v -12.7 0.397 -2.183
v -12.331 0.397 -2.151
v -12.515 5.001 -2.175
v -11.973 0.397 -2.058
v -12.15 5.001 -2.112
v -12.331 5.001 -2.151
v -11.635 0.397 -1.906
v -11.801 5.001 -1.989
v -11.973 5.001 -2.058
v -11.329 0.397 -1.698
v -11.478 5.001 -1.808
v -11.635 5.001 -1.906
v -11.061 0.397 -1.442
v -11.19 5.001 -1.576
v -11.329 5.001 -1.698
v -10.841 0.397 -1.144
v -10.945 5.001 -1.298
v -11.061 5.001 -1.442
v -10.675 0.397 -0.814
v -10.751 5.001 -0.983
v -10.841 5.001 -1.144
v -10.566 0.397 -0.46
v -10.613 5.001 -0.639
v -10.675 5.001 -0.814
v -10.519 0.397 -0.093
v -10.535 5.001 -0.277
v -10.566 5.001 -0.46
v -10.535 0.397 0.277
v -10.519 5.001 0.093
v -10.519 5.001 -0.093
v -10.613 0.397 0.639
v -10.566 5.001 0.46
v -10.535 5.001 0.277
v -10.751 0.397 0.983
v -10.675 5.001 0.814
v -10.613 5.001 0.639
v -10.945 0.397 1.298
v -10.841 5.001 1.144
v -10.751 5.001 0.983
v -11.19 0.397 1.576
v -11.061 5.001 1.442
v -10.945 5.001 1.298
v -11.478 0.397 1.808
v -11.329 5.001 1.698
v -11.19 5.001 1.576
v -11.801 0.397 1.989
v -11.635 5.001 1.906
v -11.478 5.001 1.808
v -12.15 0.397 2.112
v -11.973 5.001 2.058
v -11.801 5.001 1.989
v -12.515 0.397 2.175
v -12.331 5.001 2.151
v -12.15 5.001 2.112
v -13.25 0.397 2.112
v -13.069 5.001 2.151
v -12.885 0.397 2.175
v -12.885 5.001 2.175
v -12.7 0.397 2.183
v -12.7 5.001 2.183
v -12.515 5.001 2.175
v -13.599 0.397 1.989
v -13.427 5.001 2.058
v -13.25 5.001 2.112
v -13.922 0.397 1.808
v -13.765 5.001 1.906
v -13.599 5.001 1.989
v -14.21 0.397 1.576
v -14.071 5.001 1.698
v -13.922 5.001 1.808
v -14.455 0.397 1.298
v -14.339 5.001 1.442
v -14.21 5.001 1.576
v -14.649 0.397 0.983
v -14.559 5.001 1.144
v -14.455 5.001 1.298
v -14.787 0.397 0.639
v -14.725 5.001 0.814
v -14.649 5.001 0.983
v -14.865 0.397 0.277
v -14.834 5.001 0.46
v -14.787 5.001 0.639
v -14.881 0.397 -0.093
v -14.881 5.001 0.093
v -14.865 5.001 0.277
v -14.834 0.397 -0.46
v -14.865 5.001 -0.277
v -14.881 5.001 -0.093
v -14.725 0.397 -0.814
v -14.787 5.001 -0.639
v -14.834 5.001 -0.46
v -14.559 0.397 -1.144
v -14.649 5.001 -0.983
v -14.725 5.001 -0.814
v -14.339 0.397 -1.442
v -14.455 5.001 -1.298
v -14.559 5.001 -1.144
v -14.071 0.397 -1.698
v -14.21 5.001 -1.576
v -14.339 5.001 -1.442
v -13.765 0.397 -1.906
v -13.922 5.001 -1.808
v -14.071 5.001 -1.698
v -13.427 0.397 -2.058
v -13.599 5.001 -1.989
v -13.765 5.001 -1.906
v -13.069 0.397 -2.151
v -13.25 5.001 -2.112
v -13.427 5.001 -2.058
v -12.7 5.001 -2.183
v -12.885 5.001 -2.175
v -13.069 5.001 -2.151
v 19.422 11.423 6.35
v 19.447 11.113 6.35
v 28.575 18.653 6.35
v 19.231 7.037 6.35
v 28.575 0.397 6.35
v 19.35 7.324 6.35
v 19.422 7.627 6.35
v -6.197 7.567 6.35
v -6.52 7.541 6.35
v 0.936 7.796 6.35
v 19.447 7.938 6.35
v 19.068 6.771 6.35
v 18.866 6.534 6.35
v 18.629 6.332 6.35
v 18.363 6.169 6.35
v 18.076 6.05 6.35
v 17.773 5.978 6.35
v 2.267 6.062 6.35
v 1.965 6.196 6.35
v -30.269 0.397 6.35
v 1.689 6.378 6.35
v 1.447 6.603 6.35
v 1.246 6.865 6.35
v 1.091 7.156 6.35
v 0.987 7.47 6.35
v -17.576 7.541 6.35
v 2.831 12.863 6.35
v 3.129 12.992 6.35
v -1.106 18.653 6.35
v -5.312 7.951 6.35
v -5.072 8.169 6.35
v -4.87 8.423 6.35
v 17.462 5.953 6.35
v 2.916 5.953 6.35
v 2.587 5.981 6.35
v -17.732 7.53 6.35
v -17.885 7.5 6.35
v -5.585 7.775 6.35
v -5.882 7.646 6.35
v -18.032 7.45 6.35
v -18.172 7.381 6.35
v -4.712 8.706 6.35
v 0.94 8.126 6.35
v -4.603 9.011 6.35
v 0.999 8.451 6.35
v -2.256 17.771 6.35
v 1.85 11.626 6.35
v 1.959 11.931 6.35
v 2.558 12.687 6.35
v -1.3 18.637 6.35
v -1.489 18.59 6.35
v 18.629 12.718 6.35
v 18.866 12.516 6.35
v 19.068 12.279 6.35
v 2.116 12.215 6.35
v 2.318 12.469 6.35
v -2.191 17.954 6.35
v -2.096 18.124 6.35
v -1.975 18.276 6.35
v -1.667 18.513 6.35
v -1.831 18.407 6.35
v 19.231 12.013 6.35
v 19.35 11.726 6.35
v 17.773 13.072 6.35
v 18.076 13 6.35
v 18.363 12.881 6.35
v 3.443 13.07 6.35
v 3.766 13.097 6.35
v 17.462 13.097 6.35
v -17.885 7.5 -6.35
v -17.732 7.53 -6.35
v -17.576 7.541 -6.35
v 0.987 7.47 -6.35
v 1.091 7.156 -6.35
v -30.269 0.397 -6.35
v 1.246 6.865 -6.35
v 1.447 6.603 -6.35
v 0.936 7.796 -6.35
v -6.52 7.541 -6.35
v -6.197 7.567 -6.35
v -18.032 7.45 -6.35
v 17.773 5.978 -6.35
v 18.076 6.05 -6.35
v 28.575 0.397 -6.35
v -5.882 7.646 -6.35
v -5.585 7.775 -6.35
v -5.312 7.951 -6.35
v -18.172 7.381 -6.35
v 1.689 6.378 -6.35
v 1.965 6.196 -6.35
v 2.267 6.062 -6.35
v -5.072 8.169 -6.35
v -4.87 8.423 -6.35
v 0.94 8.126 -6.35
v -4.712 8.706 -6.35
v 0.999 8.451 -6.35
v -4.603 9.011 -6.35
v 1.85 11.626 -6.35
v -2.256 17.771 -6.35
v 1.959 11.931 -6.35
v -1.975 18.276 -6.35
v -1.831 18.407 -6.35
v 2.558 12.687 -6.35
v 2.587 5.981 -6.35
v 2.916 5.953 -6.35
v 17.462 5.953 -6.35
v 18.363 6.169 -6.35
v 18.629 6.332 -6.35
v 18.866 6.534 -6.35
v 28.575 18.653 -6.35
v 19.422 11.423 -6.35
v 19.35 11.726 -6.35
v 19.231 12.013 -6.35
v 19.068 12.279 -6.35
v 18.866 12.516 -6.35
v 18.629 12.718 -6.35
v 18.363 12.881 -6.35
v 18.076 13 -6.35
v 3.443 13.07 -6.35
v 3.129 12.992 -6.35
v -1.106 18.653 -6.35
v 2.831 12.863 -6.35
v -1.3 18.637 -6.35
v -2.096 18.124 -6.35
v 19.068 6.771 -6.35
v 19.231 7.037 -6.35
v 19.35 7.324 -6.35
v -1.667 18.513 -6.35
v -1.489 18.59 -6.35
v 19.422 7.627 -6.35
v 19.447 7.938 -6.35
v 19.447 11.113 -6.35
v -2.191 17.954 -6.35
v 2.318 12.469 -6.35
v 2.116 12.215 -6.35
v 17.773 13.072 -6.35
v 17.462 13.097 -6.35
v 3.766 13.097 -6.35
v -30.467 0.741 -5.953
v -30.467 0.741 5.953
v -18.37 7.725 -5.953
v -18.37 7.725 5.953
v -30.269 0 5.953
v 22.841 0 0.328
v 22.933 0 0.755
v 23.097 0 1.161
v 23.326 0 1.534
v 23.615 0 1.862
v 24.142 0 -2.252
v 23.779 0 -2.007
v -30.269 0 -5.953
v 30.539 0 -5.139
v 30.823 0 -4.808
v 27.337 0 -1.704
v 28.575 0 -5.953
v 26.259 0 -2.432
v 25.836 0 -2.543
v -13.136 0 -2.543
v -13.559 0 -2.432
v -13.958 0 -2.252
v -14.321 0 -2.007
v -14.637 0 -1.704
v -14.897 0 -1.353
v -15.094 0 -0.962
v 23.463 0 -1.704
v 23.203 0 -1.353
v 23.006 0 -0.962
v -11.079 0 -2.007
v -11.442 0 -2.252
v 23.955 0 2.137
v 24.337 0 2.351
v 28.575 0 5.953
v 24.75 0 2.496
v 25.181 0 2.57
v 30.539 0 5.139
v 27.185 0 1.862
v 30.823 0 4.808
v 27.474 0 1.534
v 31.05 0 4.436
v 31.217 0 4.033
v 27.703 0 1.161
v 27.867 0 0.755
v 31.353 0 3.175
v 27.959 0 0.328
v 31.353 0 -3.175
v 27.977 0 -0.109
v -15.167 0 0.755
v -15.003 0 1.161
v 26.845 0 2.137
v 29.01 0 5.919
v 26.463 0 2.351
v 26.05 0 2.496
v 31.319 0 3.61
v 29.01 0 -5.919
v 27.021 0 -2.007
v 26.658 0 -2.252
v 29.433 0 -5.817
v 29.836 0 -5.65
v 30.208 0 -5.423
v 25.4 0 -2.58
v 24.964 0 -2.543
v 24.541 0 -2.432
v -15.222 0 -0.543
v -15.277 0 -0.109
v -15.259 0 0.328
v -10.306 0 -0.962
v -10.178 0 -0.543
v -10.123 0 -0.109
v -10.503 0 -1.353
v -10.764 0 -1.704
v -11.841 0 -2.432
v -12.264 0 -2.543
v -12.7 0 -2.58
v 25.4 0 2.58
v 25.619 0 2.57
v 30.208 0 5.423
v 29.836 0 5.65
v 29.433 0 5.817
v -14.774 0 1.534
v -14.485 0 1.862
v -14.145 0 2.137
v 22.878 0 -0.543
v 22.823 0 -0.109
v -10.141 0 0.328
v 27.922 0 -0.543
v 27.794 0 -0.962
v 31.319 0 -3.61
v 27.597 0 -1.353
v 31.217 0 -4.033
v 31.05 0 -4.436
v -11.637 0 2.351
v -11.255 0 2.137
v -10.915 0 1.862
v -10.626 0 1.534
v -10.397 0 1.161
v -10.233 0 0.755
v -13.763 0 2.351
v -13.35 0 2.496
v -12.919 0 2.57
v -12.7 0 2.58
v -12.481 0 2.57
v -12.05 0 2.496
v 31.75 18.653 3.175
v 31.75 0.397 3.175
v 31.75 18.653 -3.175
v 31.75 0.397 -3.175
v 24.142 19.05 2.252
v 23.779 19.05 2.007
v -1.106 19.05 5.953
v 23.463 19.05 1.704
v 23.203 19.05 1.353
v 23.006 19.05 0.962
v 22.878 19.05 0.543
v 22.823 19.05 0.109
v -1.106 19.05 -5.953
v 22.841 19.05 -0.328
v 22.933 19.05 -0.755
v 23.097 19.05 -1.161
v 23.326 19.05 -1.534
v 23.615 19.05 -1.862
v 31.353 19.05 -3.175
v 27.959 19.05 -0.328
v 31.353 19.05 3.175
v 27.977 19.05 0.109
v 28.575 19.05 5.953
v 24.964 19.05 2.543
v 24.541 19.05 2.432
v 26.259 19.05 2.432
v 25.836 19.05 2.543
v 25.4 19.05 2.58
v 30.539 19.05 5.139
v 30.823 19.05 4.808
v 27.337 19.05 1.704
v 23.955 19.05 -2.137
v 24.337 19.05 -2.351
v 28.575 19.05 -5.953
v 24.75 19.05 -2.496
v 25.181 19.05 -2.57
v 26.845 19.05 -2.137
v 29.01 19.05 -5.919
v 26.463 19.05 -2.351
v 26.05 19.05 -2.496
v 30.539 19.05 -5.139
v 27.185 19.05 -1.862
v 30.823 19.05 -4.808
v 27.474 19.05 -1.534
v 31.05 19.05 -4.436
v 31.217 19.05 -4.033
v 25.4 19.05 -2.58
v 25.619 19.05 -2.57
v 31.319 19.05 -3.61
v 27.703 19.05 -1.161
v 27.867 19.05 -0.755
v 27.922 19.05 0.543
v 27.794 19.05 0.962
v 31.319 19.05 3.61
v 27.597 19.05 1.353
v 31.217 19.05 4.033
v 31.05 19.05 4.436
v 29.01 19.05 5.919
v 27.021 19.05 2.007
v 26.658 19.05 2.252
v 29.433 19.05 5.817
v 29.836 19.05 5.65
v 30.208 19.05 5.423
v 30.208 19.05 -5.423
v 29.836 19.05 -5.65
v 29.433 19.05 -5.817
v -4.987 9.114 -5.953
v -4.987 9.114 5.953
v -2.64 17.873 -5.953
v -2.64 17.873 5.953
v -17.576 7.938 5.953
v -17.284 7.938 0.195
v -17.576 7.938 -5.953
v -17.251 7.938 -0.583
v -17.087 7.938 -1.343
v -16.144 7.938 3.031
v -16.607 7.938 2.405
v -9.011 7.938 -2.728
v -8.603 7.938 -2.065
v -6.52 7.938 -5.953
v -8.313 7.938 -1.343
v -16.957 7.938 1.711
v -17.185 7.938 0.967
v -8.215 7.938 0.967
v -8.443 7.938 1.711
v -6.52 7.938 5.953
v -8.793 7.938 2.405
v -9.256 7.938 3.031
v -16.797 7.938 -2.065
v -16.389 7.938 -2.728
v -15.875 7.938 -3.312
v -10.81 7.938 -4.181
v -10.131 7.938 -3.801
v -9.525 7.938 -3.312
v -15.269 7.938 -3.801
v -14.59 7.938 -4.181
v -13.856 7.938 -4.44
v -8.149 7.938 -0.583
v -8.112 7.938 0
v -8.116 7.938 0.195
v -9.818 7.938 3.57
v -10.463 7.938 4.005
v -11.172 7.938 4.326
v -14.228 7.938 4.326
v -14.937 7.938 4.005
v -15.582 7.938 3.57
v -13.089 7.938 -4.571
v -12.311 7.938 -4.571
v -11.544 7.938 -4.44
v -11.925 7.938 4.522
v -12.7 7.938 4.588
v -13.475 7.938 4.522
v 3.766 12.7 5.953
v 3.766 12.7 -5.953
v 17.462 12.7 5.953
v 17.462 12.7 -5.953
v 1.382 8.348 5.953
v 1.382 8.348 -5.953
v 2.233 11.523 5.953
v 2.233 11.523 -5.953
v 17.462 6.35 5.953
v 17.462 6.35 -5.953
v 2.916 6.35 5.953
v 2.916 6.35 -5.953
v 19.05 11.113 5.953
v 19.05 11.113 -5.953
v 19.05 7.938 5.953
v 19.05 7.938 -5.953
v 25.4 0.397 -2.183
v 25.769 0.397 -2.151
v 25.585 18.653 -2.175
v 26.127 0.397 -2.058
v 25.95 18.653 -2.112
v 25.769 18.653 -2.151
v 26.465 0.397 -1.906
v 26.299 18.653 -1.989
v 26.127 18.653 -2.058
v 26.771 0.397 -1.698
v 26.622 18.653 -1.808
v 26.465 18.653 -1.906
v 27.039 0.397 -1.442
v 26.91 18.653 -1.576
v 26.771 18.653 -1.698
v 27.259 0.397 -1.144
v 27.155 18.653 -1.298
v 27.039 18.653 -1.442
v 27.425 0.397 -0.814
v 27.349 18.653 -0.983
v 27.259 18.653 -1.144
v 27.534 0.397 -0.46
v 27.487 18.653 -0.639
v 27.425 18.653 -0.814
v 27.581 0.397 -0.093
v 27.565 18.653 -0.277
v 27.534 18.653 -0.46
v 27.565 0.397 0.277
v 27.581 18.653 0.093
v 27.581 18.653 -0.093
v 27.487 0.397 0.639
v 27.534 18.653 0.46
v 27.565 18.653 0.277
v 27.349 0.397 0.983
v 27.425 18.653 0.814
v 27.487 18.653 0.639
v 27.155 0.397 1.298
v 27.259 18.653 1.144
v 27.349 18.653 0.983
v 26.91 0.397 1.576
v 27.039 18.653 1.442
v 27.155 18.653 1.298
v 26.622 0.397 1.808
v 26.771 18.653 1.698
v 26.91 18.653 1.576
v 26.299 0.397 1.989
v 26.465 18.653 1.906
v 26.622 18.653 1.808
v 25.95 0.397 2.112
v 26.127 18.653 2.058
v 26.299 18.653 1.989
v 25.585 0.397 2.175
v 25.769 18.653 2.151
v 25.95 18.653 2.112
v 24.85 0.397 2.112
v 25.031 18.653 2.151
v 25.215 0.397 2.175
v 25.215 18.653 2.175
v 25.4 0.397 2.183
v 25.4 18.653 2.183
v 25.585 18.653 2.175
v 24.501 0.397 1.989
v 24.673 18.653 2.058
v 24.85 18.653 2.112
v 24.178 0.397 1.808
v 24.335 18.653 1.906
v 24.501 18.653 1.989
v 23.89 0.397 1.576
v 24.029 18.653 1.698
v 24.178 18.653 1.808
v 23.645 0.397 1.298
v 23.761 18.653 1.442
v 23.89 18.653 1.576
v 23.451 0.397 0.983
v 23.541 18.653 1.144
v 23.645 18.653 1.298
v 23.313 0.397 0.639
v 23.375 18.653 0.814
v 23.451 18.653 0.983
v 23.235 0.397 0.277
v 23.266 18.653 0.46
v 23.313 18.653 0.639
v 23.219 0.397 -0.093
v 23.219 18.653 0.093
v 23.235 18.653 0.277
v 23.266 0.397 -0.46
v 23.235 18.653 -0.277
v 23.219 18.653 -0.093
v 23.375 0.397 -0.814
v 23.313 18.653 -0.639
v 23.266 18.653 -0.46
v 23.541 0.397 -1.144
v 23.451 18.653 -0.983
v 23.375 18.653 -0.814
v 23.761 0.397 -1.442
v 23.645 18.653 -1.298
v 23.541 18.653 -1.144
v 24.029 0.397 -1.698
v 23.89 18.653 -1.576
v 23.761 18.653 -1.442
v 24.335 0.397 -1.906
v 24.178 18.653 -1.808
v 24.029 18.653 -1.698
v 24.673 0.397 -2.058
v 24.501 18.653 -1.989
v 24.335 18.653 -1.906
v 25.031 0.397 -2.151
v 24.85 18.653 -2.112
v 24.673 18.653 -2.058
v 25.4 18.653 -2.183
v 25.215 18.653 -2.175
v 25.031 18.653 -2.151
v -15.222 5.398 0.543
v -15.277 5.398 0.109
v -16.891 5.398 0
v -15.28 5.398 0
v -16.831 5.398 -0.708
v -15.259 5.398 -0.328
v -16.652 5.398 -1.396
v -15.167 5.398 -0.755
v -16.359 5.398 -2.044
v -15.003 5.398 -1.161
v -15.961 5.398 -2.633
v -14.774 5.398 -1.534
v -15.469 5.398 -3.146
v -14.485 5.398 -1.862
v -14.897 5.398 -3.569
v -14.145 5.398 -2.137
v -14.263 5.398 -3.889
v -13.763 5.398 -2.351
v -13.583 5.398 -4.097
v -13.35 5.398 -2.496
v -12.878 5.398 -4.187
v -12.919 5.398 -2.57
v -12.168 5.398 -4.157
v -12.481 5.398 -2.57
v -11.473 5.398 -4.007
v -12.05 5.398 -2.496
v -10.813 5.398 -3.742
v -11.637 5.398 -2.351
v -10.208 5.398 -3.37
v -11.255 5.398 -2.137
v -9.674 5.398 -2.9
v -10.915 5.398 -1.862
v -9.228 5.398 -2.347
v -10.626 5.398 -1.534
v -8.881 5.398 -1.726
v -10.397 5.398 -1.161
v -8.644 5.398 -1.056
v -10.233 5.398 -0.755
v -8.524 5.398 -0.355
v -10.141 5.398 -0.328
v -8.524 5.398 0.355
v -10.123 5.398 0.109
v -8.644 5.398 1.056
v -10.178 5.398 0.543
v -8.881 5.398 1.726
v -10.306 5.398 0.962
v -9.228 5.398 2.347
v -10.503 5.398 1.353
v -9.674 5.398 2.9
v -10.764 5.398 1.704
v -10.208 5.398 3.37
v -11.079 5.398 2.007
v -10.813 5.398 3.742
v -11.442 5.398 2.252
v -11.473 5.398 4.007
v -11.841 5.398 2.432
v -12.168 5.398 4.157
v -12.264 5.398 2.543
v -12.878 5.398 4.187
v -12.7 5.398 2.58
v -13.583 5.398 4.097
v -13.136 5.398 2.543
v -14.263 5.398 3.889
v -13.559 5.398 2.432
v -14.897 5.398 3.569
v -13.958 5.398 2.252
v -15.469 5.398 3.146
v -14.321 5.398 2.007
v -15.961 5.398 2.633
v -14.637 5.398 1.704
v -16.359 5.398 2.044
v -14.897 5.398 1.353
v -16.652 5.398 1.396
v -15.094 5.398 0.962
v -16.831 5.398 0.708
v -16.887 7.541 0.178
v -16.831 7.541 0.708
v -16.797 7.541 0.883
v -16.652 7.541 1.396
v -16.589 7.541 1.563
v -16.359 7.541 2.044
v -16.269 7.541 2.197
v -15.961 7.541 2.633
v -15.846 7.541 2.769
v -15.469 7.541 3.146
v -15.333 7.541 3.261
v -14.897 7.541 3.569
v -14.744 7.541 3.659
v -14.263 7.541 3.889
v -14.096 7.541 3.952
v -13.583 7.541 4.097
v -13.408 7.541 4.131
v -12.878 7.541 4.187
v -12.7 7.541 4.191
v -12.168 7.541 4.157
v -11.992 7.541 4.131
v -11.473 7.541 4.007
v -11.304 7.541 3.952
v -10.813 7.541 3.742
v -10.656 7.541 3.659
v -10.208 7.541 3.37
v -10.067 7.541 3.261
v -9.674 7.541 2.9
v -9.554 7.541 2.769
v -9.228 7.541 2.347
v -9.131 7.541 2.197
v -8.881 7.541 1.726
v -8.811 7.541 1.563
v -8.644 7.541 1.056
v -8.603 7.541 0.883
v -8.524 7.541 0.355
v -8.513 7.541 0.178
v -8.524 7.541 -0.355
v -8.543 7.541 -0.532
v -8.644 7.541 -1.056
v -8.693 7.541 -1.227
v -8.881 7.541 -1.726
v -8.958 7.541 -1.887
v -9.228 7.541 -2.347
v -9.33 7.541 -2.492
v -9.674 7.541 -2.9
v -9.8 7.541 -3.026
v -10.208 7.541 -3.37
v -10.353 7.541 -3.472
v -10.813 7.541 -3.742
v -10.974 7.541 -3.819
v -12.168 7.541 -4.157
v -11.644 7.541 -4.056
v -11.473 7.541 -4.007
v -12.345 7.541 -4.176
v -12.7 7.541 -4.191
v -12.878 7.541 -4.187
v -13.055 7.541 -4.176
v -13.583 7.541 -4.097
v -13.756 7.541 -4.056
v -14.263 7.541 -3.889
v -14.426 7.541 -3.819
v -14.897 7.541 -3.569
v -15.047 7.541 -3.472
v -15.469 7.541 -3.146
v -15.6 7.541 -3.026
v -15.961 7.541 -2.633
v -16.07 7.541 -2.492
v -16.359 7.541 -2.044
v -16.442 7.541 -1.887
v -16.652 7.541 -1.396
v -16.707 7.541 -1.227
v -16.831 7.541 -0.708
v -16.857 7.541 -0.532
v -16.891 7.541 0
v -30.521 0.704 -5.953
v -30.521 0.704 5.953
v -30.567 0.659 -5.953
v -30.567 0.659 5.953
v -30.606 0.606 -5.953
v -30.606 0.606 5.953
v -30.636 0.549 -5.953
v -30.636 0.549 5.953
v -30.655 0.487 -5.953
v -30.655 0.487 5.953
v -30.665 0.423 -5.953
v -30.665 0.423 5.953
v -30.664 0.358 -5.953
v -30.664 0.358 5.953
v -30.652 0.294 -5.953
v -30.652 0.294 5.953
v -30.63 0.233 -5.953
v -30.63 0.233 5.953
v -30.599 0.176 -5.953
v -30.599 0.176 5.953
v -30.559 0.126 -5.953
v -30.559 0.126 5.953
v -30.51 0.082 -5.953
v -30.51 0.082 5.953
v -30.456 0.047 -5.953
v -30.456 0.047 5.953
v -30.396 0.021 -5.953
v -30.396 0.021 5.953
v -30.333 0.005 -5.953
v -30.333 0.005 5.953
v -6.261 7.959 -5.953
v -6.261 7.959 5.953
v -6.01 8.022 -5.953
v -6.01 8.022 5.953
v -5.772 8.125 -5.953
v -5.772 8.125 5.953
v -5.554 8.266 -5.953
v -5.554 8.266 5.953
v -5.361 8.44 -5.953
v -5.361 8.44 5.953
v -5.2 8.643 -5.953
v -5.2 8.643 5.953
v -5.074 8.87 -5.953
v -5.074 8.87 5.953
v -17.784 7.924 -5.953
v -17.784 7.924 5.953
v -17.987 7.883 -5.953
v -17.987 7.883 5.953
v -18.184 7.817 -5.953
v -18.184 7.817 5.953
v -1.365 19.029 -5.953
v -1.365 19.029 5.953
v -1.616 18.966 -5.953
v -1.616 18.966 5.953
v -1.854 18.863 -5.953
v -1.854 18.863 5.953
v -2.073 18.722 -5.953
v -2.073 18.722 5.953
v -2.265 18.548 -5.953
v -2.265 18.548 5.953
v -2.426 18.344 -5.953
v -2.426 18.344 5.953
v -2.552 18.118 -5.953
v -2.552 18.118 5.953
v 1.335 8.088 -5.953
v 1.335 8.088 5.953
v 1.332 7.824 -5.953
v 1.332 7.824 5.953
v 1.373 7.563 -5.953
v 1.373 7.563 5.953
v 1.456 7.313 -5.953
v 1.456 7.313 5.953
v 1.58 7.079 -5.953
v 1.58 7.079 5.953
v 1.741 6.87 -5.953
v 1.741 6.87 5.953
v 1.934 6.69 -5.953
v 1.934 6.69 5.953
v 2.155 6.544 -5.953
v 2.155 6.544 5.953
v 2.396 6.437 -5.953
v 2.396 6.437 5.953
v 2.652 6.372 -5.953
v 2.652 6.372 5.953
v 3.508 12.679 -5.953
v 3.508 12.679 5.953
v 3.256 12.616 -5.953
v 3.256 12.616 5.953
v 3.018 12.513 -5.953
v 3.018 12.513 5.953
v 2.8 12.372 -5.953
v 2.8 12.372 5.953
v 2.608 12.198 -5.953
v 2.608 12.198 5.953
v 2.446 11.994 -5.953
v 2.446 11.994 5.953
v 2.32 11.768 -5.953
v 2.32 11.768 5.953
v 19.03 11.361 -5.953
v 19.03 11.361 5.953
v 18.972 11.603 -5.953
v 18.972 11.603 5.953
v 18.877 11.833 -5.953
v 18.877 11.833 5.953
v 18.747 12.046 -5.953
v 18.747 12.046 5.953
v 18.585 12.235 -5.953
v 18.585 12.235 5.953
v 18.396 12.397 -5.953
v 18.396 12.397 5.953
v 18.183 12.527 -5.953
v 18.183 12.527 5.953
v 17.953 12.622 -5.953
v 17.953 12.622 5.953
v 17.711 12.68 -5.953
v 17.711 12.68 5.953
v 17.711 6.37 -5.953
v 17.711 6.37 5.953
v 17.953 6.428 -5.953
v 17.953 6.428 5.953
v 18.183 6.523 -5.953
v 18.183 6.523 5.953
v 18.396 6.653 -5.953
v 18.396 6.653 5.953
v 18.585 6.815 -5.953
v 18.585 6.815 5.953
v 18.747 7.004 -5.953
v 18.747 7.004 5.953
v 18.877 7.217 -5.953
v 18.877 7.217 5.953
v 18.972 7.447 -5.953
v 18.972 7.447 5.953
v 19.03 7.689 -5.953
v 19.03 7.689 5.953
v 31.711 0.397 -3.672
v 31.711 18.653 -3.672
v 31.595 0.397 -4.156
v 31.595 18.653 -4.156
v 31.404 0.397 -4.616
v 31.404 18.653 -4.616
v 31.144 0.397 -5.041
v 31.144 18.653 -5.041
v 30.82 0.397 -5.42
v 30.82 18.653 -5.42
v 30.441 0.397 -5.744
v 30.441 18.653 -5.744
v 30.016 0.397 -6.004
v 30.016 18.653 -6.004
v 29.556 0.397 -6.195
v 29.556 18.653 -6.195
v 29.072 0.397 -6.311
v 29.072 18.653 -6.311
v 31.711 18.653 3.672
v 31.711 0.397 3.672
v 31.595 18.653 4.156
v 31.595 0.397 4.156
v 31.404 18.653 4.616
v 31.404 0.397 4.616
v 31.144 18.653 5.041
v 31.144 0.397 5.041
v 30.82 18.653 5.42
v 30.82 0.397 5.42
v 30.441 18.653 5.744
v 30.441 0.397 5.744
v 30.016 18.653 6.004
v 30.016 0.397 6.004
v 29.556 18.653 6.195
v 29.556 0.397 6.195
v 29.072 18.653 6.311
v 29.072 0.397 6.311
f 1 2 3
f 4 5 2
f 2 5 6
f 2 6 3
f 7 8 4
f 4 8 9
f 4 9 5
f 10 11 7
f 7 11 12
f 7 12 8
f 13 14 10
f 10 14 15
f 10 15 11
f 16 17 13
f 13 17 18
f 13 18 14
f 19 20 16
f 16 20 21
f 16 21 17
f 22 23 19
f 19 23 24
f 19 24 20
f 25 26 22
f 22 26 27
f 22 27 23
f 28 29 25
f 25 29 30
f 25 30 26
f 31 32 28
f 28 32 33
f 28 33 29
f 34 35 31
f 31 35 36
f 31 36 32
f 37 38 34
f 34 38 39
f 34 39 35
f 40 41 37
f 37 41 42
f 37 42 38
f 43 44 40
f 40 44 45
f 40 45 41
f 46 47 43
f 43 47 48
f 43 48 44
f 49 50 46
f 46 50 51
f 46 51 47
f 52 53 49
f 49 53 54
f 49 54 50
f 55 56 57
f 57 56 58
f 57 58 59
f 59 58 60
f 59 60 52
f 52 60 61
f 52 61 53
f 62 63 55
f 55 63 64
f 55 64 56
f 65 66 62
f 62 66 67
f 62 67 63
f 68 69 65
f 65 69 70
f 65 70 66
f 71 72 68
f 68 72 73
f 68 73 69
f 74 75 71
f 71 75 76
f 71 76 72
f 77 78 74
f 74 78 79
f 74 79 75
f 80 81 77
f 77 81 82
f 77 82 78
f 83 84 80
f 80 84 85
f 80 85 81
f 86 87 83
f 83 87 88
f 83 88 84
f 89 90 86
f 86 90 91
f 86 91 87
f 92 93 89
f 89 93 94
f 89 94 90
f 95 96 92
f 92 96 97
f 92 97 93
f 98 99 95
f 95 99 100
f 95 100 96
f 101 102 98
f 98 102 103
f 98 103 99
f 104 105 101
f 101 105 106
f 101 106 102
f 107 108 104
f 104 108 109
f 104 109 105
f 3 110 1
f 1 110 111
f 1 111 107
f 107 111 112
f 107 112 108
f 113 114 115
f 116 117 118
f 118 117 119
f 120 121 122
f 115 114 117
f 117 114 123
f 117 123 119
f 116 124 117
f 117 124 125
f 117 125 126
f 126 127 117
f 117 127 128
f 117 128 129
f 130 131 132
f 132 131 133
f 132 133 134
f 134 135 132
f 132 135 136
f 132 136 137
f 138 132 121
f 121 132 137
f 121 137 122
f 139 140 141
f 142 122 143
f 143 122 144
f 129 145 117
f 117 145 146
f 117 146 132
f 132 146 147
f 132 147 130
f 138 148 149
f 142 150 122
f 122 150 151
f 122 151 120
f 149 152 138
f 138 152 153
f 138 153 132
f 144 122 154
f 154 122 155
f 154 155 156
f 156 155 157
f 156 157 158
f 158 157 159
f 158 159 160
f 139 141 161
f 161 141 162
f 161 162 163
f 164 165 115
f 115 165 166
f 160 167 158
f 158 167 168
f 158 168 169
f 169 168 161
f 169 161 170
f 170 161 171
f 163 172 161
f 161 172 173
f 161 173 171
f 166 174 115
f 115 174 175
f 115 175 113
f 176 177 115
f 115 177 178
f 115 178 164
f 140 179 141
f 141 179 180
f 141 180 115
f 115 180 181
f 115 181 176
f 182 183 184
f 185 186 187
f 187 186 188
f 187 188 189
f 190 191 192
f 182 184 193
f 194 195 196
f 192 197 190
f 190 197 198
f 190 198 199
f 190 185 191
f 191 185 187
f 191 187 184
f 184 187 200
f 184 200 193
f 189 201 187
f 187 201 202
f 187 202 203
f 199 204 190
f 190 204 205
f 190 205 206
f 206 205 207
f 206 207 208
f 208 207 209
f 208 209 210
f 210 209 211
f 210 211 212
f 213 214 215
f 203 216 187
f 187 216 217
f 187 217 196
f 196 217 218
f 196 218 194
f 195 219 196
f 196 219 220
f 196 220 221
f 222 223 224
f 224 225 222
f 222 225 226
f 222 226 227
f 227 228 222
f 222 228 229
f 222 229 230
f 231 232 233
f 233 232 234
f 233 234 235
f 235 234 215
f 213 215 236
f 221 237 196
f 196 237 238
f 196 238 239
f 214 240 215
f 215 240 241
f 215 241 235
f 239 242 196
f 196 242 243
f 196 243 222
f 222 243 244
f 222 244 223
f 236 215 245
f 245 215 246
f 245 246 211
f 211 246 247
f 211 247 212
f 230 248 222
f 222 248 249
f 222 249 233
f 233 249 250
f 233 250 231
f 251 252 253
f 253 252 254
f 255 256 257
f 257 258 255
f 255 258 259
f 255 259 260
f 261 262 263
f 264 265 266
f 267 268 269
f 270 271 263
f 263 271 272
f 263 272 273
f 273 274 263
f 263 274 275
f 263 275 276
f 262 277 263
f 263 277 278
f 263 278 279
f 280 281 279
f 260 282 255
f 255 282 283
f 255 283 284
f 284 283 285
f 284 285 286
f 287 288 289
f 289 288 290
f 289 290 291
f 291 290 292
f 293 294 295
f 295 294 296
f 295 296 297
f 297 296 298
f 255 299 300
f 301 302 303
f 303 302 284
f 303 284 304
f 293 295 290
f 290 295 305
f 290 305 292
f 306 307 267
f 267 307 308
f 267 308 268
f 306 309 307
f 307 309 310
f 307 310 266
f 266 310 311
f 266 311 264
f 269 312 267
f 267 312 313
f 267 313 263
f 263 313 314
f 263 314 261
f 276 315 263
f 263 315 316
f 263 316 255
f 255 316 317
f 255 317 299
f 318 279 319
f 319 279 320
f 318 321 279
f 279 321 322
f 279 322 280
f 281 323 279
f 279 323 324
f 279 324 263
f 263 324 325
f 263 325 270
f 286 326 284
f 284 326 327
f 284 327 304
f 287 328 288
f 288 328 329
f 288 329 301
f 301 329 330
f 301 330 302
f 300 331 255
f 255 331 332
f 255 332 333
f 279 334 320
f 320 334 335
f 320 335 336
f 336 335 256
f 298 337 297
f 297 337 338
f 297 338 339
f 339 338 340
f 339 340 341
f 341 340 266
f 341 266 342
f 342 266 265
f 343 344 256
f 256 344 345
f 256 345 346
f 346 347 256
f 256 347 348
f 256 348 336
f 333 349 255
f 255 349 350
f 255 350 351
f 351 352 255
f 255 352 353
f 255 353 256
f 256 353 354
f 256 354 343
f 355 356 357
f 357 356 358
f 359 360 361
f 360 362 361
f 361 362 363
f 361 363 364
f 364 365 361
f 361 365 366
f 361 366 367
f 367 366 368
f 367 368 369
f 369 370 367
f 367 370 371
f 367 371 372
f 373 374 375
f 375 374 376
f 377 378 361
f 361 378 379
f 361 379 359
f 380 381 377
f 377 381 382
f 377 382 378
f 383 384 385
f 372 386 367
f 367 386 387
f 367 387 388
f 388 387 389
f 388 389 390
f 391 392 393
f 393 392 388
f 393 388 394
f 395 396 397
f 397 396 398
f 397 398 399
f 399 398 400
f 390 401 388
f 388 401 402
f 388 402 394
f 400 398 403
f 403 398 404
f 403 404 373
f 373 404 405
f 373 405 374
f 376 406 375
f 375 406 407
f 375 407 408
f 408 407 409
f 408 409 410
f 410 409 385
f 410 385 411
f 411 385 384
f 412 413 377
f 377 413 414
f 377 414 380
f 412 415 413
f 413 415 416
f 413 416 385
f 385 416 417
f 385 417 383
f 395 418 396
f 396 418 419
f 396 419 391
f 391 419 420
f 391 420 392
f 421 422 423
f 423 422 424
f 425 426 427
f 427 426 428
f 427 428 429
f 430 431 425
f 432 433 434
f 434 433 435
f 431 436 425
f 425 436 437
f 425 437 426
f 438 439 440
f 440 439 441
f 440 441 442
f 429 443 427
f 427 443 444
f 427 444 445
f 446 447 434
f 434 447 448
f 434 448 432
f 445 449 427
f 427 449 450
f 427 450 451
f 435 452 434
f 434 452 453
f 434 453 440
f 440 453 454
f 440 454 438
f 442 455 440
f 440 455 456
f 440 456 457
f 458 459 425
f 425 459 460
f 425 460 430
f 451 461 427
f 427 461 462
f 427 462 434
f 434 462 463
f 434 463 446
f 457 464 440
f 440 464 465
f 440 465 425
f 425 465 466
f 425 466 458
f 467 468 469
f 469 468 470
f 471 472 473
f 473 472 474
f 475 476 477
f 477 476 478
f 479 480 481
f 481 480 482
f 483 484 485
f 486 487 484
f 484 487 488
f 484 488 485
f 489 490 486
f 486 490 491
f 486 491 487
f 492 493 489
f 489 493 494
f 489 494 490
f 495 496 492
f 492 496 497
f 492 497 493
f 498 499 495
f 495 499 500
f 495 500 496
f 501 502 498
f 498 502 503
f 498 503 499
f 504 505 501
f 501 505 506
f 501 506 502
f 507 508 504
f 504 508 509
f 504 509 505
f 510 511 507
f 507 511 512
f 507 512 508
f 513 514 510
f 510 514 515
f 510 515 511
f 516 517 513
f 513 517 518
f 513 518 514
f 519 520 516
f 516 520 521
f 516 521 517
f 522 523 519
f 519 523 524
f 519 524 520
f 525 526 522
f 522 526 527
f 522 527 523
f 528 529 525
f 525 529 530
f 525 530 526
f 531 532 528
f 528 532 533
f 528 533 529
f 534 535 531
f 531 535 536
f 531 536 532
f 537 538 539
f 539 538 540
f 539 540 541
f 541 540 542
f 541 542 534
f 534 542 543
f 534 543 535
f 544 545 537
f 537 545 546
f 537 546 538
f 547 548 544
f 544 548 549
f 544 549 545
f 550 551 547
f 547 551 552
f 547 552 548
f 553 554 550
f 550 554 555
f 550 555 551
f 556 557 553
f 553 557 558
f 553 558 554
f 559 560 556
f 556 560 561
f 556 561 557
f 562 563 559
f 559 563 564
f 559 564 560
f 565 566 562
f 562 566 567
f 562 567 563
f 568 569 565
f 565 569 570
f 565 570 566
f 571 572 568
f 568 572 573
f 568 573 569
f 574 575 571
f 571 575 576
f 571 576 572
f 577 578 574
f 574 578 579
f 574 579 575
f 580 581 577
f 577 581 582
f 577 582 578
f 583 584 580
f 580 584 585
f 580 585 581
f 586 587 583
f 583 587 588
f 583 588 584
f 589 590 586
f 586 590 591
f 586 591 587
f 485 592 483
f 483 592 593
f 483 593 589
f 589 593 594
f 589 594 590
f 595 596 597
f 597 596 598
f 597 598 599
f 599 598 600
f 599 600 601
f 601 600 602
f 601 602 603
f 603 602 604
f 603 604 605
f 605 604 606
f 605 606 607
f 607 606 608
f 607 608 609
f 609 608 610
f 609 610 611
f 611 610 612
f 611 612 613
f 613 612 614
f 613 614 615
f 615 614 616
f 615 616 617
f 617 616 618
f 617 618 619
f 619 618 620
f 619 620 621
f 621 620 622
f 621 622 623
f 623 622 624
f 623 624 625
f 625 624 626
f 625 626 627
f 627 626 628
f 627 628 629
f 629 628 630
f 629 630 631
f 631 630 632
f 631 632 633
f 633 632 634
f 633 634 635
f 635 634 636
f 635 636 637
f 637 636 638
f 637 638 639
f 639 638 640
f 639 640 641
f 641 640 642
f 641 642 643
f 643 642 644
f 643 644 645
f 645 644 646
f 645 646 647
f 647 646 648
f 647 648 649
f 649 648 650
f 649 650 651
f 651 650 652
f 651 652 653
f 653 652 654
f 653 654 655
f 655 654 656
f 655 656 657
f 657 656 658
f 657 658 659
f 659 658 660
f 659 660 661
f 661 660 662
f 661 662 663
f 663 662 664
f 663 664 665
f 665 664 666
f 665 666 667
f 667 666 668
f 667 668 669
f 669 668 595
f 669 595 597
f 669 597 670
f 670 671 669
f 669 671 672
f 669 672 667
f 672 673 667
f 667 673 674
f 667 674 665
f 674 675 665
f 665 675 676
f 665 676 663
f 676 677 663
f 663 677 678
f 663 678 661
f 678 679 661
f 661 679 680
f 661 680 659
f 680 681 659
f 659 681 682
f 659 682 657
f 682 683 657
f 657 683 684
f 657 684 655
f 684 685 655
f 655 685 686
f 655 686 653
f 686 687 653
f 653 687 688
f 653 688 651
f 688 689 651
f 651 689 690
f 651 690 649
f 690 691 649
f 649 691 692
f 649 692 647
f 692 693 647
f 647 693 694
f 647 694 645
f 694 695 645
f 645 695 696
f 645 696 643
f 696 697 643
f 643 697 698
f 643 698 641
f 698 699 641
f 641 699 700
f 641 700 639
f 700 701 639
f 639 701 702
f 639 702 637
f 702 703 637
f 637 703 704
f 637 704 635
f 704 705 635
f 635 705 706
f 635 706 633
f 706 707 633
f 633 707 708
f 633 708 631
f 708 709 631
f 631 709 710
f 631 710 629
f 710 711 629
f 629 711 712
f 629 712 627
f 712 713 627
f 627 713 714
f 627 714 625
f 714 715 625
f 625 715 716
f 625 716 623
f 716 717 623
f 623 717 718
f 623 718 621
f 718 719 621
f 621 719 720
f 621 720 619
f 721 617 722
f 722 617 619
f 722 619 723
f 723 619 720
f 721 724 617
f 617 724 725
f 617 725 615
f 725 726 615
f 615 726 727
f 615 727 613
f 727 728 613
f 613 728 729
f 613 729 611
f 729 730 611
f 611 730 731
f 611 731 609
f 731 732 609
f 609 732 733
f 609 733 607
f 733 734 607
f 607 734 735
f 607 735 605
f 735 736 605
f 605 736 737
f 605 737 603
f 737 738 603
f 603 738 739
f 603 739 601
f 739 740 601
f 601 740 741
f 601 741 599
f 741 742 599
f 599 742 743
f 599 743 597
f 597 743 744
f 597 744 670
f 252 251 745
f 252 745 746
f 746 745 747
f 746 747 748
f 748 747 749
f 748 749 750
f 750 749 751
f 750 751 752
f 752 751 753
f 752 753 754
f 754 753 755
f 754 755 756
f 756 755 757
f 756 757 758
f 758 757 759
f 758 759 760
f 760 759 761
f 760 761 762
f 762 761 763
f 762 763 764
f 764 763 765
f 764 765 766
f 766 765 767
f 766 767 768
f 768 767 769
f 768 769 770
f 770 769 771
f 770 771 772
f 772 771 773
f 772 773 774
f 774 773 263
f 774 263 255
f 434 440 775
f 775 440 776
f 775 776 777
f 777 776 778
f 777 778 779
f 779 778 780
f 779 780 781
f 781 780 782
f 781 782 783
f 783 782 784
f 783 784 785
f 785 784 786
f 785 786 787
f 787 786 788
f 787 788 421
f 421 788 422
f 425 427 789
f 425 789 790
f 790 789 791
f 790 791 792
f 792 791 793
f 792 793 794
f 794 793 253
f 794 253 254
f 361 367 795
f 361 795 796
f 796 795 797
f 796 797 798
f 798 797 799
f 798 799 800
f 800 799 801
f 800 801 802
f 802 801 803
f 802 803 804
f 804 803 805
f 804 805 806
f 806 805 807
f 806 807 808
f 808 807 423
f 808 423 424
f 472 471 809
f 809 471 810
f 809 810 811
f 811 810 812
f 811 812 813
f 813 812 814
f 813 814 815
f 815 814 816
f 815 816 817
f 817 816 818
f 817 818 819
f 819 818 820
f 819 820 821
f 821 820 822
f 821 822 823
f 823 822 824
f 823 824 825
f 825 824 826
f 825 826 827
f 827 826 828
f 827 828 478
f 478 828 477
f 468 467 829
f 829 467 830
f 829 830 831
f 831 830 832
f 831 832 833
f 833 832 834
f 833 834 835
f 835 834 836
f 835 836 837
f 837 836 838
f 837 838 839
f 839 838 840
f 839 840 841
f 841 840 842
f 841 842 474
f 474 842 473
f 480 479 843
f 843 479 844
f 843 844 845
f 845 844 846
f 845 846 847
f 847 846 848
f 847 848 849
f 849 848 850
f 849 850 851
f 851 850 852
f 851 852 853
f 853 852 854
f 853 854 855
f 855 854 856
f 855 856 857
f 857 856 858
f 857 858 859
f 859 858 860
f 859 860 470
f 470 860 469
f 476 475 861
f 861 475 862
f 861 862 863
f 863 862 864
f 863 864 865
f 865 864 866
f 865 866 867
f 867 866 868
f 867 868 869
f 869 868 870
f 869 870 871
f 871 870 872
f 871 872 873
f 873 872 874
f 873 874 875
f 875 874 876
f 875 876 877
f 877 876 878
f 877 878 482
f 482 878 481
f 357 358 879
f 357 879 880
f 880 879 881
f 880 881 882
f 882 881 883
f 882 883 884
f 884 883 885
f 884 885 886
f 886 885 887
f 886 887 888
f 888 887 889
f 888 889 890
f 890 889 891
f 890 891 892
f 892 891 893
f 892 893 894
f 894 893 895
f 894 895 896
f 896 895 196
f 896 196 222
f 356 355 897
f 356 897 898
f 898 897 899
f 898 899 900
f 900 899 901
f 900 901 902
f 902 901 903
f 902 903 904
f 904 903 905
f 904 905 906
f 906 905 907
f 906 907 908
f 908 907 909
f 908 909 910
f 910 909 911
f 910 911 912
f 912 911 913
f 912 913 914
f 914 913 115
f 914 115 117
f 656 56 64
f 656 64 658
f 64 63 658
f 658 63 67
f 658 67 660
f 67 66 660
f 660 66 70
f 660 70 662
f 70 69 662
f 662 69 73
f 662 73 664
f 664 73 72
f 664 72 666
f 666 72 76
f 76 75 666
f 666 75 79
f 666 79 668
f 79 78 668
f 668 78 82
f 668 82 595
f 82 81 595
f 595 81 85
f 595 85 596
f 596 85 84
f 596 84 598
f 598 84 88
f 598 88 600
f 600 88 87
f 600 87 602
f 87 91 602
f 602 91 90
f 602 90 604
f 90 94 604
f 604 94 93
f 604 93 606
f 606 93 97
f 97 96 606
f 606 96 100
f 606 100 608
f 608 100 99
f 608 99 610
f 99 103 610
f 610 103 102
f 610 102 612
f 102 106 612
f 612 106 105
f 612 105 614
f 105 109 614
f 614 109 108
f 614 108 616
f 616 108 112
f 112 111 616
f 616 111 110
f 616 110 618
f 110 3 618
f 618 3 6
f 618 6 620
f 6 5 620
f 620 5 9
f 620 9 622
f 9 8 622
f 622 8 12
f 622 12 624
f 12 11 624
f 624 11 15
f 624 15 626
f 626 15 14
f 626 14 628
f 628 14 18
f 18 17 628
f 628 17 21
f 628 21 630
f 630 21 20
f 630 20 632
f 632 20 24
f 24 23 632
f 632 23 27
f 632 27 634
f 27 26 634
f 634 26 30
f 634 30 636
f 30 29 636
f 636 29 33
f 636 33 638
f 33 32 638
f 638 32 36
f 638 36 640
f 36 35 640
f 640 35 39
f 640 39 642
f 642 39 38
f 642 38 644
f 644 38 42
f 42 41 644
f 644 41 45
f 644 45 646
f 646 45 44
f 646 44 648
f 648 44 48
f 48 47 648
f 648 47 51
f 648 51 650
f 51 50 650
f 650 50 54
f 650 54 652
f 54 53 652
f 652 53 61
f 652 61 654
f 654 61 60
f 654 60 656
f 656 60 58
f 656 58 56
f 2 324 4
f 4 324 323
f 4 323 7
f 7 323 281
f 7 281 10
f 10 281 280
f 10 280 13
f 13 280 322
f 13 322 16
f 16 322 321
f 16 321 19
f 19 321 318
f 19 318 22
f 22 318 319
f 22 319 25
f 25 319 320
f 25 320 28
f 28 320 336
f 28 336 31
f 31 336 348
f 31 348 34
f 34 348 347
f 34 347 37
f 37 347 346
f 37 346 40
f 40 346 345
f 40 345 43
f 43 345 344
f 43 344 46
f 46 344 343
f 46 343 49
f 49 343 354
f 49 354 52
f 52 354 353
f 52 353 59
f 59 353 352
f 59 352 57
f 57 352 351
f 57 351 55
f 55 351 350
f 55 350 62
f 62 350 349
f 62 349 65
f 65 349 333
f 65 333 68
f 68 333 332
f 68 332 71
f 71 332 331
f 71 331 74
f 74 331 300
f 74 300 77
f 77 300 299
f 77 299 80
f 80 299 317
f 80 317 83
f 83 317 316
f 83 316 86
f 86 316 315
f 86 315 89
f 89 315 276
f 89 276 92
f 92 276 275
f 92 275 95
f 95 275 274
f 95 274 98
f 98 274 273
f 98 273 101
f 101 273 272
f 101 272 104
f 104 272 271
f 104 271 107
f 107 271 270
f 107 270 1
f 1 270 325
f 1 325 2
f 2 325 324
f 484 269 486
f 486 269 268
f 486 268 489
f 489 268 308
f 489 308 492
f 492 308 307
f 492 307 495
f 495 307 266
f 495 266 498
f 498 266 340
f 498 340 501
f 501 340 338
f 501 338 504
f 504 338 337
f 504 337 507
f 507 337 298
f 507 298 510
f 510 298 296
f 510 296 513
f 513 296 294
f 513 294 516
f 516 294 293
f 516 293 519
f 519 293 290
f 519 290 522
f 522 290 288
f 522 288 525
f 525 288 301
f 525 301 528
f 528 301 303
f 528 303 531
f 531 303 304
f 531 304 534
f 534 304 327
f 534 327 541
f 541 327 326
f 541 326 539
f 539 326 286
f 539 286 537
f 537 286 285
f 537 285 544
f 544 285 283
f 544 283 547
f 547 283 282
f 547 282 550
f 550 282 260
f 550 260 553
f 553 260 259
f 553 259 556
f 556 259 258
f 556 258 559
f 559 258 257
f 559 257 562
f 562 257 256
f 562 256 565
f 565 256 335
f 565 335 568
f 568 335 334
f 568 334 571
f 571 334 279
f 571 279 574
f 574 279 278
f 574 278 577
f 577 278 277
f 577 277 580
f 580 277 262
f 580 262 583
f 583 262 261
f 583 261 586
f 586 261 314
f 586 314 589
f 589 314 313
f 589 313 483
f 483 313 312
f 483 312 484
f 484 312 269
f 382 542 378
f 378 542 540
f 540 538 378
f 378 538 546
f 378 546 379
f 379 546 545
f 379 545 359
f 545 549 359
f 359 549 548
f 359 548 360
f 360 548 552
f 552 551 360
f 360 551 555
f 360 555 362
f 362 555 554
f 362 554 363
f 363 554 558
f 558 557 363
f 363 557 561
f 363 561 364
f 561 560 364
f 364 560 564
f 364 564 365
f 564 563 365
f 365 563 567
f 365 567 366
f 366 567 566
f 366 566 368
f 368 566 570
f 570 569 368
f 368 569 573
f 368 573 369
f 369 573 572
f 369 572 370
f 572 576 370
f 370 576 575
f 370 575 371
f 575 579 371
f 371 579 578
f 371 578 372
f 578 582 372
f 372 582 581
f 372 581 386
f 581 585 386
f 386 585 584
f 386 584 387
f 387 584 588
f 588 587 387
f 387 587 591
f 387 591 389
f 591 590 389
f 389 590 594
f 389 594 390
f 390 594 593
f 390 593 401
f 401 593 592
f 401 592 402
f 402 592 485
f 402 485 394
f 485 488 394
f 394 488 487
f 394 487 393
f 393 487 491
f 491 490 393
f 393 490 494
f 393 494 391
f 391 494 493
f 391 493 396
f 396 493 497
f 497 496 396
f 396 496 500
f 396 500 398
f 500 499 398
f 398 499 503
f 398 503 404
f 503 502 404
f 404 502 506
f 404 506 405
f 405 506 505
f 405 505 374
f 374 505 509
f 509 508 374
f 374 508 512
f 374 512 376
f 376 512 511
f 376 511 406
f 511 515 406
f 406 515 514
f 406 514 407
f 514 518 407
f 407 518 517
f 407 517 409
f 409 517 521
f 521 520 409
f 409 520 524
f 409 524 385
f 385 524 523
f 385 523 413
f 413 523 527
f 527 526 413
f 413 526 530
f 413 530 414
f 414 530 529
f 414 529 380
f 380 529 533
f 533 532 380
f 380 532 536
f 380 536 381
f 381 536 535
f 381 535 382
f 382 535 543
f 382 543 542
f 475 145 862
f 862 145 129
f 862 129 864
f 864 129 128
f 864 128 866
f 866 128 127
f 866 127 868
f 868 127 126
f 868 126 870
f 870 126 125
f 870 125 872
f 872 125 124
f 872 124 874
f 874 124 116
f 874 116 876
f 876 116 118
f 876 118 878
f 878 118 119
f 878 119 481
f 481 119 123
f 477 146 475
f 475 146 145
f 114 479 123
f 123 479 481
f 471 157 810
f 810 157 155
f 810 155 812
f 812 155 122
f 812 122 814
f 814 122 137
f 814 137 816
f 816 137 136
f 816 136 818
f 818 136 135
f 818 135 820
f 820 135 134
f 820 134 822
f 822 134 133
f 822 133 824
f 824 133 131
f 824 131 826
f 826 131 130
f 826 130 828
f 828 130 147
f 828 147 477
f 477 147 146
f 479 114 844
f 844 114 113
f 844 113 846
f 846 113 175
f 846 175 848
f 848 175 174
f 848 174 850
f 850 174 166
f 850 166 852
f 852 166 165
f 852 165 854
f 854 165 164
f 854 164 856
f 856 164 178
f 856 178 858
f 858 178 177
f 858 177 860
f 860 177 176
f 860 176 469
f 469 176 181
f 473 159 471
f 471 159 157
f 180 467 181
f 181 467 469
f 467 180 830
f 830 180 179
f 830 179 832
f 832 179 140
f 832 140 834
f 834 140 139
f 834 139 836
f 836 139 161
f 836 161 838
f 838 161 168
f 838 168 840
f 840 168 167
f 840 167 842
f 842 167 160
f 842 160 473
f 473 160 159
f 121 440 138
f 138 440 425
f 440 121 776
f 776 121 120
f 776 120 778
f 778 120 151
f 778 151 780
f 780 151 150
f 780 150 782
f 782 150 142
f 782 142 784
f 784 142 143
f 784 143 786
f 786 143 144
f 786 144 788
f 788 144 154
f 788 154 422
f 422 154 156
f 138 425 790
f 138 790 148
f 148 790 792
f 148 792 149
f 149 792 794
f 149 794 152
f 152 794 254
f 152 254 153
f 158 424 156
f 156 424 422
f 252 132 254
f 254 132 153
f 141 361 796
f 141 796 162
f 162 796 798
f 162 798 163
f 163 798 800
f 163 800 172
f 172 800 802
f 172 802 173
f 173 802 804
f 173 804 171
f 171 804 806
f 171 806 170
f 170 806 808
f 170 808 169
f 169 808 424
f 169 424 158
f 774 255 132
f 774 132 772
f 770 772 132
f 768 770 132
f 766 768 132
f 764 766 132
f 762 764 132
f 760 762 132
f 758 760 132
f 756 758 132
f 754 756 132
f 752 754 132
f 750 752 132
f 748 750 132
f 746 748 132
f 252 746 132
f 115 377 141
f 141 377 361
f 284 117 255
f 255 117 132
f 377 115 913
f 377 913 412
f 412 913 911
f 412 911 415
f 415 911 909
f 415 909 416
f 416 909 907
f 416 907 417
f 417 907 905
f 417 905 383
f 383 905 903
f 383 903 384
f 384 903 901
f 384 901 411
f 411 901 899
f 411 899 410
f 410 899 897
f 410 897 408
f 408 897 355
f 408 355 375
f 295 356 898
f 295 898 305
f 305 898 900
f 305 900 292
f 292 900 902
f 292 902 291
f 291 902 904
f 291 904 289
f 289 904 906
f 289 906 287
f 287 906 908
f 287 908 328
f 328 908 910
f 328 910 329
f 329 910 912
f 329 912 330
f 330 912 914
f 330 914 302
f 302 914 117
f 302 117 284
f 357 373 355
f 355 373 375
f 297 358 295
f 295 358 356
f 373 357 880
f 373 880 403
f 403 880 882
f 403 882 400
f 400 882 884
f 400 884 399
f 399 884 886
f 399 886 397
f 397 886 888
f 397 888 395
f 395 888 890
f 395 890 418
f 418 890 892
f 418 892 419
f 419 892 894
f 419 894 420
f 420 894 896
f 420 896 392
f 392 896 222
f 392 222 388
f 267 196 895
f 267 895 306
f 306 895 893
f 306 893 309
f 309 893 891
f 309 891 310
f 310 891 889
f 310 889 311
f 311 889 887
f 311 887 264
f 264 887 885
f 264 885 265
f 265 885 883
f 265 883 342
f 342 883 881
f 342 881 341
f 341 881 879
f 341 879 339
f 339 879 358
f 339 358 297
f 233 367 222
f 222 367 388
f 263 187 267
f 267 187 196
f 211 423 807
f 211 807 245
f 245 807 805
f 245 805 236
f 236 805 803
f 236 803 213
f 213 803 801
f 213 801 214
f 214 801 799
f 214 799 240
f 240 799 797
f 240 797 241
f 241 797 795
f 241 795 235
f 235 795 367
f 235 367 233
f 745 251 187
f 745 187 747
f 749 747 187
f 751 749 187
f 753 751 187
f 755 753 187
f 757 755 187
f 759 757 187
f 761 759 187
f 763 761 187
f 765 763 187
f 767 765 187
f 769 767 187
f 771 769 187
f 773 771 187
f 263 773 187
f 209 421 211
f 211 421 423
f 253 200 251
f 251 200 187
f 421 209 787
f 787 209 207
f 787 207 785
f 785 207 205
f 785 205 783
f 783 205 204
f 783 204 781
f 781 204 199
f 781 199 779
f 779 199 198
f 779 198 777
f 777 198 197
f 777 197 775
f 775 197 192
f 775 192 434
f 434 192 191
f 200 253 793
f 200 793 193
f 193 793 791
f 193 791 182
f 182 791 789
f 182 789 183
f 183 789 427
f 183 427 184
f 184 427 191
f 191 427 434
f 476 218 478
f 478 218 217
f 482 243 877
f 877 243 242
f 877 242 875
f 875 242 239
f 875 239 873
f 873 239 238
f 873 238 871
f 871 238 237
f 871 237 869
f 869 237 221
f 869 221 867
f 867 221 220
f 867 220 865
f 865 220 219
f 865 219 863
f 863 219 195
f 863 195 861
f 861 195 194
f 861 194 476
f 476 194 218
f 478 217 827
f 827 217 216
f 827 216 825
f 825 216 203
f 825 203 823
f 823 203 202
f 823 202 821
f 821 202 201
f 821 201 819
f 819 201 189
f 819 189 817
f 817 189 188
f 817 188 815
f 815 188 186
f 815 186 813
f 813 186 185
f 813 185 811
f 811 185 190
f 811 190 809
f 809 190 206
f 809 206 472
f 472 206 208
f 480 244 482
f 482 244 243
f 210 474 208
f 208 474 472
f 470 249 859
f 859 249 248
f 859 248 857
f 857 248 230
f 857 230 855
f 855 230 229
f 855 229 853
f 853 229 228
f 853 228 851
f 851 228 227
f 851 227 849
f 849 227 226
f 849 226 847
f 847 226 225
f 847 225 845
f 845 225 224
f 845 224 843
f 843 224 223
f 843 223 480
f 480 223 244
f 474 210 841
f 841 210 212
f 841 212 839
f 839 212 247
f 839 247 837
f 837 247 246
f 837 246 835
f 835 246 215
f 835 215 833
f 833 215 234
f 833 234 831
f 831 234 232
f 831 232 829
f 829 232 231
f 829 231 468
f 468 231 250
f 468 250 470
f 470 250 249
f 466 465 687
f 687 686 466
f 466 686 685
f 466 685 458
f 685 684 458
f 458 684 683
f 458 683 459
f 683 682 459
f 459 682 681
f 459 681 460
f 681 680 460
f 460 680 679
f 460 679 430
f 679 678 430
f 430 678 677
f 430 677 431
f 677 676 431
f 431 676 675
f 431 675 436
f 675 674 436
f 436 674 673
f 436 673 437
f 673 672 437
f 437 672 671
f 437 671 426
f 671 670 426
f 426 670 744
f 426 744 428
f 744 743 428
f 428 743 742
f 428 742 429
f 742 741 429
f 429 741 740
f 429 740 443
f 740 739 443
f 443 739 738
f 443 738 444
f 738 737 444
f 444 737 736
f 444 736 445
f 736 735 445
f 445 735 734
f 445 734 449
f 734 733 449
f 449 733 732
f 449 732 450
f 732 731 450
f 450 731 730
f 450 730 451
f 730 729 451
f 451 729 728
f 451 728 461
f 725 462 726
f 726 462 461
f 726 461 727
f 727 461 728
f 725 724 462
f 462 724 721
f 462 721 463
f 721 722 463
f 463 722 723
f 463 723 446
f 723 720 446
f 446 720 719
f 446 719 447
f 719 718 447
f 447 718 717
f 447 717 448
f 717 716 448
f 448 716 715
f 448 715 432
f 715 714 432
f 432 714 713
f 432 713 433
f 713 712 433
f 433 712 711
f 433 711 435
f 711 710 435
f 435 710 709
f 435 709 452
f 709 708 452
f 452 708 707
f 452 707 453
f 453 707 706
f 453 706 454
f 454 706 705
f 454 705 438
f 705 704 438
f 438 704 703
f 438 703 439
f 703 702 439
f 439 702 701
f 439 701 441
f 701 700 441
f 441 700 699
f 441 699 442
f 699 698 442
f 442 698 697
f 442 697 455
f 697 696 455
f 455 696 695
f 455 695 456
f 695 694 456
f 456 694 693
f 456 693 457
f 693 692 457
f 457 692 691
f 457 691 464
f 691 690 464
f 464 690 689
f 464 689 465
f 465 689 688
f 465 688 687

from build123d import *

# Parameters (mm, degrees)
BOSS_EXTRUDE1_DEPTH     = 6.35
CUT_EXTRUDE1_DEPTH      = 38.567106623
CUT_EXTRUDE1_DEPTH_BACK = 38.567106623
SKETCH2_R               = 2.1828125
SKETCH3_R               = 4.191
CUT_EXTRUDE2_DEPTH      = 2.54
FILLET1_R               = 0.396875
FILLET2_R               = 1.5875
FILLET3_R               = 3.175
CHAMFER1_SIZE           = 0.396875


with BuildPart() as part:
    # Sketch1 → Boss-Extrude1 (new, symmetric)
    with BuildSketch(Plane.XY):
        Polygon((-31.75, 0), (31.75, 0), (31.75, 19.05), (-2.324261314, 19.05), (-5.301846715, 7.9375), (-18.001846715, 7.9375), align=None)
        Polygon((19.05, 12.7), (19.05, 6.35), (0.846787688, 6.35), (2.54826506, 12.7), align=None, mode=Mode.SUBTRACT)
    extrude(amount=BOSS_EXTRUDE1_DEPTH, both=True)

    # Sketch2 → Cut-Extrude1 (cut, two sides: drawn at the far end of the back side and taken through both)
    with BuildSketch(Plane.XZ.offset(-CUT_EXTRUDE1_DEPTH_BACK)):
        with Locations(Location((-12.7, 0, 0), (0, 0, 270))):
            Circle(SKETCH2_R)
        with Locations(Location((25.4, 0, 0), (0, 0, 270))):
            Circle(SKETCH2_R)
    extrude(amount=CUT_EXTRUDE1_DEPTH + CUT_EXTRUDE1_DEPTH_BACK, mode=Mode.SUBTRACT)

    # Sketch3 → Cut-Extrude2 (cut)
    with BuildSketch(Plane(origin=(0, 7.9375, 0), x_dir=(1, 0, 0), z_dir=(0, 1, 0))):
        with Locations(Location((-12.7, 0, 0), (0, 0, 180))):
            Circle(SKETCH3_R)
    extrude(amount=-CUT_EXTRUDE2_DEPTH, mode=Mode.SUBTRACT)

    # Fillet1
    fillet1_edges = [part.edges().sort_by_distance(p)[0] for p in [
        (-31.75, 0, 0),
    ]]
    fillet(fillet1_edges, radius=FILLET1_R)

    # Fillet2
    fillet2_edges = [part.edges().sort_by_distance(p)[0] for p in [
        (-18.001846715, 7.9375, 0),
        (-5.301846715, 7.9375, 0),
        (-2.324261314, 19.05, 0),
        (19.05, 12.7, 0),
        (2.54826506, 12.7, 0),
        (0.846787688, 6.35, 0),
        (19.05, 6.35, 0),
    ]]
    fillet(fillet2_edges, radius=FILLET2_R)

    # Fillet3
    fillet3_edges = [part.edges().sort_by_distance(p)[0] for p in [
        (31.75, 9.525, 6.35),
        (31.75, 9.525, -6.35),
    ]]
    fillet(fillet3_edges, radius=FILLET3_R)

    # Chamfer1
    chamfer1_edges = [part.edges().sort_by_distance(p)[0] for p in [
        (31.75, 19.05, 0),
        (31.75, 0, 0),
        (13.73443514, 19.05, -6.35),
        (13.73443514, 19.05, 6.35),
        (30.82006403, 19.05, 5.42006403),
        (30.82006403, 19.05, -5.42006403),
        (30.82006403, 0, 5.42006403),
        (30.82006403, 0, -5.42006403),
        (-12.7, 0, 2.1828125),
        (25.4, 19.05, 2.1828125),
        (25.4, 0, 2.1828125),
        (-8.509, 7.9375, 0),
        (-12.7, 5.3975, 2.1828125),
        (-0.846921168, 0, -6.35),
        (-0.846921168, 0, 6.35),
        (-30.652194148, 0.294156191, -6.35),
        (-30.652194148, 0.294156191, 6.35),
        (-12.04822784, 7.9375, -6.35),
        (-12.04822784, 7.9375, 6.35),
        (-3.813054014, 13.49375, -6.35),
        (-3.813054014, 13.49375, 6.35),
        (-24.418753604, 4.23269708, -6.35),
        (-24.418753604, 4.23269708, 6.35),
        (19.05, 9.525, -6.35),
        (10.614448327, 12.7, -6.35),
        (1.807620061, 9.935875234, -6.35),
        (10.189078984, 6.35, -6.35),
        (-2.072538489, 18.721948428, -6.35),
        (-17.987352606, 7.883407249, -6.35),
        (10.614448327, 12.7, 6.35),
        (19.05, 9.525, 6.35),
        (10.189078984, 6.35, 6.35),
        (1.807620061, 9.935875234, 6.35),
        (-2.072538489, 18.721948428, 6.35),
        (-17.987352606, 7.883407249, 6.35),
        (-5.55356954, 8.265551572, -6.35),
        (-5.55356954, 8.265551572, 6.35),
        (1.656209539, 6.971091231, -6.35),
        (1.656209539, 6.971091231, 6.35),
        (2.799987885, 12.371948428, -6.35),
        (2.799987885, 12.371948428, 6.35),
        (18.585032015, 12.235032015, -6.35),
        (18.585032015, 12.235032015, 6.35),
        (18.585032015, 6.814967985, -6.35),
        (18.585032015, 6.814967985, 6.35),
    ]]
    chamfer(chamfer1_edges, length=CHAMFER1_SIZE - 0.0001)  # a hair under: the kernel refuses the full size


solid = part.part
